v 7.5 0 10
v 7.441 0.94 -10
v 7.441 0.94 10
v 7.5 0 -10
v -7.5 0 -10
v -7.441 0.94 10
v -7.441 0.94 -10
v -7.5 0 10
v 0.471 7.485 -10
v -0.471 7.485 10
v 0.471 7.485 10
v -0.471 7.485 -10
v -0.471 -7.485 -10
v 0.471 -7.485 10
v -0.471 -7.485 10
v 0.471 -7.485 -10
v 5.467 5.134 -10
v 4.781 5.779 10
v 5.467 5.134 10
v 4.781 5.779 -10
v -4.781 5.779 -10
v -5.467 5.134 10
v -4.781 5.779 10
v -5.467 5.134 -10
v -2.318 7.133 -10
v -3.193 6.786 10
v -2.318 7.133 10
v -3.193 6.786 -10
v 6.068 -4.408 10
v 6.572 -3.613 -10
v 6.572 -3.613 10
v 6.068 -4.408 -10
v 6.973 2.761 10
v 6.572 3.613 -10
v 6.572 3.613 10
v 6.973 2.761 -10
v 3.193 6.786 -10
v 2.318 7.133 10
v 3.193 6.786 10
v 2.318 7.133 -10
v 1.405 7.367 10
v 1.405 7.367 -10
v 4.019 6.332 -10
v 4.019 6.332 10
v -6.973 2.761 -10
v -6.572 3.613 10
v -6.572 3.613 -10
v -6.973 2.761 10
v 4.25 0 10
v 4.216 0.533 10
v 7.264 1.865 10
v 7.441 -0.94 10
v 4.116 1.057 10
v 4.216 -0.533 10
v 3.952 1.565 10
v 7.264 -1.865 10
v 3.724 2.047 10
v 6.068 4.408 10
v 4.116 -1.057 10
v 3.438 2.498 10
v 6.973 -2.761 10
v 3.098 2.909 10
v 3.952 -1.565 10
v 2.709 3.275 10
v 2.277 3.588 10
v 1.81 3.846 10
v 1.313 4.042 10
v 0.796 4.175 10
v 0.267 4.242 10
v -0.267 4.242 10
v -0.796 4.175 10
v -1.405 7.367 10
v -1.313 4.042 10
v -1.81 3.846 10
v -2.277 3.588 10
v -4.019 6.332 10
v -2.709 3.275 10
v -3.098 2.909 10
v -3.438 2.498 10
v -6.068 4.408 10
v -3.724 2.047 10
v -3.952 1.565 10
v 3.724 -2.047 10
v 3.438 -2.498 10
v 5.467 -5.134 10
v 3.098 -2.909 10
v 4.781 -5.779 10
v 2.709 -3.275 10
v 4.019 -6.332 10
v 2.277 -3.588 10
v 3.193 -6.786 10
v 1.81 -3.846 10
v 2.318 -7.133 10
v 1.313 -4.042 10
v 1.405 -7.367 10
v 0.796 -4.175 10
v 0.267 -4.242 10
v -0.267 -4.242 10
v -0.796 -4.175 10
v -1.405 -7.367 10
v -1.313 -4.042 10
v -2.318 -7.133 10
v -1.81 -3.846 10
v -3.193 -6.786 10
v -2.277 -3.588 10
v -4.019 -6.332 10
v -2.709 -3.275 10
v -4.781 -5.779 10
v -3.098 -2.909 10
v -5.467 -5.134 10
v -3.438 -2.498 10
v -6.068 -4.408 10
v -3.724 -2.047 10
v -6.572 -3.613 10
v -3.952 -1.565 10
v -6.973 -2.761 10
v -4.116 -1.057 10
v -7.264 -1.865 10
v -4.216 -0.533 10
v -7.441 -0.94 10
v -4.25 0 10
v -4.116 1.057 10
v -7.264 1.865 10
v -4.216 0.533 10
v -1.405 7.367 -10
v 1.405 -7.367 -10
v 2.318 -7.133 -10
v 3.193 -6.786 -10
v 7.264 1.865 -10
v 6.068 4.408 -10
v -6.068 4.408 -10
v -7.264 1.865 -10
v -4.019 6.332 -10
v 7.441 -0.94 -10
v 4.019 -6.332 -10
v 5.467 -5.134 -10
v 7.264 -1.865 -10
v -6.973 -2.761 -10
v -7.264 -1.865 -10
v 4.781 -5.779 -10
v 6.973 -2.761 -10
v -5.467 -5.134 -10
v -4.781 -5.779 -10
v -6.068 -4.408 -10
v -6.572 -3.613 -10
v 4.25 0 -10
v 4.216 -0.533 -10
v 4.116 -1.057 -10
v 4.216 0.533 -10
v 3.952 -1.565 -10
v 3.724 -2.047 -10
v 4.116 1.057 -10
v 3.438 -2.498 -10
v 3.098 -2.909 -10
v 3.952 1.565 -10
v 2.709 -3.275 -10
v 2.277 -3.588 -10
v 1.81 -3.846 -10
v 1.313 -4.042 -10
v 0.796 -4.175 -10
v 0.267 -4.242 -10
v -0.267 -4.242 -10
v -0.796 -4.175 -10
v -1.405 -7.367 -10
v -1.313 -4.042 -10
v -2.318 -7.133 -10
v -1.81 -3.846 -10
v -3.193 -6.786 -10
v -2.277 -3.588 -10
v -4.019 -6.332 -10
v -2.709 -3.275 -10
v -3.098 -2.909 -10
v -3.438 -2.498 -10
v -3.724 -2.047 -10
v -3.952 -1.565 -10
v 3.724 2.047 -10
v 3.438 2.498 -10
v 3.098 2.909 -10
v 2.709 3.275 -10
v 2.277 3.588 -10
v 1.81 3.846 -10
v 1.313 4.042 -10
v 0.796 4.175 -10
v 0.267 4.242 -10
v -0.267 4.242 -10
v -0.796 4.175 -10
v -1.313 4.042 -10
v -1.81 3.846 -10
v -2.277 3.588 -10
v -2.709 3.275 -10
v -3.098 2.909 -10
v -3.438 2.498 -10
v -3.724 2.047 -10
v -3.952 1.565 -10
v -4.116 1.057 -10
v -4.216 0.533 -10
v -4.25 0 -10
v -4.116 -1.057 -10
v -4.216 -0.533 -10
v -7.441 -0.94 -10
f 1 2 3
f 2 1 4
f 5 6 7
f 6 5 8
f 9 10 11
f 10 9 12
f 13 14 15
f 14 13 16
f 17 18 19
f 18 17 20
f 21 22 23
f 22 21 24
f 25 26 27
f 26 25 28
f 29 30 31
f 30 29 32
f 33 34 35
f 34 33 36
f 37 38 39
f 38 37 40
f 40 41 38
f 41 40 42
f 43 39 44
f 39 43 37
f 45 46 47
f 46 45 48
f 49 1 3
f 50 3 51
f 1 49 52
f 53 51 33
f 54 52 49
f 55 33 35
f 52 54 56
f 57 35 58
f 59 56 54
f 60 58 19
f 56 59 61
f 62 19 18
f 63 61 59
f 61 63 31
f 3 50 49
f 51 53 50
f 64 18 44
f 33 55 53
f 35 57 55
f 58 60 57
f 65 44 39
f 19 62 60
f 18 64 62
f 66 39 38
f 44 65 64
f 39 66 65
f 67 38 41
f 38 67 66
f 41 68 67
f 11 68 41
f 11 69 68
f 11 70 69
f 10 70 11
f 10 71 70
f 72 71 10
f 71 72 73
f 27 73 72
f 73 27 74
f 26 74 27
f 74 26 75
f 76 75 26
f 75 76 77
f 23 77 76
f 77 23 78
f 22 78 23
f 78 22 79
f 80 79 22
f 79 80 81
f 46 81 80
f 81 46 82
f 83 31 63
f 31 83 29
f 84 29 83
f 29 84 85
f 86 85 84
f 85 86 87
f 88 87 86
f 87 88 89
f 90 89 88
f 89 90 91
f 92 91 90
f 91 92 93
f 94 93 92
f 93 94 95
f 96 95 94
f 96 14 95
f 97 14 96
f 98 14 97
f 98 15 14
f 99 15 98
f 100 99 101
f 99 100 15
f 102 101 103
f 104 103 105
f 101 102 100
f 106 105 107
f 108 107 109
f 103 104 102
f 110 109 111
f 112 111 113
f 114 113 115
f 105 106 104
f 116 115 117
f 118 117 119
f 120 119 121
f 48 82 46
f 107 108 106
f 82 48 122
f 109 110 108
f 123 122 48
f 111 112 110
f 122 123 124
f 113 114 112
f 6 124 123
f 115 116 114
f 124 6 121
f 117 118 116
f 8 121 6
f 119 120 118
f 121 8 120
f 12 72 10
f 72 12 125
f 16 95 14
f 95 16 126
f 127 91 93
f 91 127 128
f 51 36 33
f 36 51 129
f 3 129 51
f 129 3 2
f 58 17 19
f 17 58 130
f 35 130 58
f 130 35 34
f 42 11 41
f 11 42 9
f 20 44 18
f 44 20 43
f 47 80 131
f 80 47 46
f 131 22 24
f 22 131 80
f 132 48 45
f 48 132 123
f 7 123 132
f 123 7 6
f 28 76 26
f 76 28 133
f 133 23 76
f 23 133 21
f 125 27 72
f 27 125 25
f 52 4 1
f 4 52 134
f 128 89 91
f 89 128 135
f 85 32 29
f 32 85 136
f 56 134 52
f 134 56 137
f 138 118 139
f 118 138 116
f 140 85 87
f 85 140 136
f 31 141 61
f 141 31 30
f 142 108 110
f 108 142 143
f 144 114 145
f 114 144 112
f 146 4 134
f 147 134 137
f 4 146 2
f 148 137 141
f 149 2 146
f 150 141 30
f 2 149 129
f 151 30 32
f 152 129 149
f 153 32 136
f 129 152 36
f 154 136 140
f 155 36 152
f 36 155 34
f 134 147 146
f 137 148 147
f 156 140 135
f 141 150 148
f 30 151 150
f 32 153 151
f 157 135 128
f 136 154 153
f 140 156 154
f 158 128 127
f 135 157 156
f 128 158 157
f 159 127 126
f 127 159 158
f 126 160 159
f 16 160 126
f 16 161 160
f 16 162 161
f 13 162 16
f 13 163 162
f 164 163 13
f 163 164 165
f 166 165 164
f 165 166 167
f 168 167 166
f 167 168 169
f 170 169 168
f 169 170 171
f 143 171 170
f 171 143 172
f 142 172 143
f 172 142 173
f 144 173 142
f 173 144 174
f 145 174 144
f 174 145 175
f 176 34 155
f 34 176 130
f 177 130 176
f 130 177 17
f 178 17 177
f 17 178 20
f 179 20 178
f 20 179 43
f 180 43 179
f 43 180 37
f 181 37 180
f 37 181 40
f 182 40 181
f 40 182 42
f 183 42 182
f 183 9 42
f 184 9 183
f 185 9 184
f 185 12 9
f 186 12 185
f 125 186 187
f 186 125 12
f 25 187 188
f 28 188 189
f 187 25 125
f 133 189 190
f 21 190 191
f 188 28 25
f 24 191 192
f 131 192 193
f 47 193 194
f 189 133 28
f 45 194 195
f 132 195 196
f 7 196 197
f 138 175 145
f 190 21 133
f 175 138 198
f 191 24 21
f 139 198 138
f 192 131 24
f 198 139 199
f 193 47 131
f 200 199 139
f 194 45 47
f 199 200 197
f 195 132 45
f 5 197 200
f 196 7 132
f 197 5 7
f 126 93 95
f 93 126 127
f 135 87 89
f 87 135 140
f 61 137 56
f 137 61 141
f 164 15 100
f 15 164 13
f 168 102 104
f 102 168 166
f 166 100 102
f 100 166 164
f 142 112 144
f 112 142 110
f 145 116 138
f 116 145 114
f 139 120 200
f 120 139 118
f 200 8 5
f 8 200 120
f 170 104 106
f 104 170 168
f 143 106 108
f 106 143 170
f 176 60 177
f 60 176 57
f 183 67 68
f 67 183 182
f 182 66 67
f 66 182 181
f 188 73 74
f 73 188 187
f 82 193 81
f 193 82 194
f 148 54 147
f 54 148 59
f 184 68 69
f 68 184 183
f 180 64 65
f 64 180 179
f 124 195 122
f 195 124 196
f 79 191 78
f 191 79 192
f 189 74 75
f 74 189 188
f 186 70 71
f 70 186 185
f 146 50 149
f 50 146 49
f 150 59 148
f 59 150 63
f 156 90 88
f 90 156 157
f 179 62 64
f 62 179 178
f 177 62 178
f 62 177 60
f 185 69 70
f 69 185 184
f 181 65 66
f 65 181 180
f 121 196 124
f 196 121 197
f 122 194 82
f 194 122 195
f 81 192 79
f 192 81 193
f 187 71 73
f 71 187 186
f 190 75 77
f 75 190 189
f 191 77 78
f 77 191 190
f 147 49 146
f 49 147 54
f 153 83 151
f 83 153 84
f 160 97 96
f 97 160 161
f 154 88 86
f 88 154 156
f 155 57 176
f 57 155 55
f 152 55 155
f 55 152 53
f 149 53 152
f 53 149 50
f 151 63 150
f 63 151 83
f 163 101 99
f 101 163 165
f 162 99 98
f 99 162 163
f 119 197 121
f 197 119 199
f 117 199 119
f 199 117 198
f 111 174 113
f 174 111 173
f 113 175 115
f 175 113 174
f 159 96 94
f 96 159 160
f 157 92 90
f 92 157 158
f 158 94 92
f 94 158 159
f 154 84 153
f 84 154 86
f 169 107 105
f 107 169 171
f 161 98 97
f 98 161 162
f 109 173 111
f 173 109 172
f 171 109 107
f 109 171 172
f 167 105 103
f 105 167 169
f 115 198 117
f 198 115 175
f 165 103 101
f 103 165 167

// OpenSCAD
$fn = 50;


difference() {
	union() {
		translate(v = [0, 0, -10.0000000000]) {
			cylinder(h = 20, r = 7.5000000000);
		}
	}
	union() {
		translate(v = [0, 0, -100.0000000000]) {
			cylinder(h = 200, r = 4.2500000000);
		}
	}
}
